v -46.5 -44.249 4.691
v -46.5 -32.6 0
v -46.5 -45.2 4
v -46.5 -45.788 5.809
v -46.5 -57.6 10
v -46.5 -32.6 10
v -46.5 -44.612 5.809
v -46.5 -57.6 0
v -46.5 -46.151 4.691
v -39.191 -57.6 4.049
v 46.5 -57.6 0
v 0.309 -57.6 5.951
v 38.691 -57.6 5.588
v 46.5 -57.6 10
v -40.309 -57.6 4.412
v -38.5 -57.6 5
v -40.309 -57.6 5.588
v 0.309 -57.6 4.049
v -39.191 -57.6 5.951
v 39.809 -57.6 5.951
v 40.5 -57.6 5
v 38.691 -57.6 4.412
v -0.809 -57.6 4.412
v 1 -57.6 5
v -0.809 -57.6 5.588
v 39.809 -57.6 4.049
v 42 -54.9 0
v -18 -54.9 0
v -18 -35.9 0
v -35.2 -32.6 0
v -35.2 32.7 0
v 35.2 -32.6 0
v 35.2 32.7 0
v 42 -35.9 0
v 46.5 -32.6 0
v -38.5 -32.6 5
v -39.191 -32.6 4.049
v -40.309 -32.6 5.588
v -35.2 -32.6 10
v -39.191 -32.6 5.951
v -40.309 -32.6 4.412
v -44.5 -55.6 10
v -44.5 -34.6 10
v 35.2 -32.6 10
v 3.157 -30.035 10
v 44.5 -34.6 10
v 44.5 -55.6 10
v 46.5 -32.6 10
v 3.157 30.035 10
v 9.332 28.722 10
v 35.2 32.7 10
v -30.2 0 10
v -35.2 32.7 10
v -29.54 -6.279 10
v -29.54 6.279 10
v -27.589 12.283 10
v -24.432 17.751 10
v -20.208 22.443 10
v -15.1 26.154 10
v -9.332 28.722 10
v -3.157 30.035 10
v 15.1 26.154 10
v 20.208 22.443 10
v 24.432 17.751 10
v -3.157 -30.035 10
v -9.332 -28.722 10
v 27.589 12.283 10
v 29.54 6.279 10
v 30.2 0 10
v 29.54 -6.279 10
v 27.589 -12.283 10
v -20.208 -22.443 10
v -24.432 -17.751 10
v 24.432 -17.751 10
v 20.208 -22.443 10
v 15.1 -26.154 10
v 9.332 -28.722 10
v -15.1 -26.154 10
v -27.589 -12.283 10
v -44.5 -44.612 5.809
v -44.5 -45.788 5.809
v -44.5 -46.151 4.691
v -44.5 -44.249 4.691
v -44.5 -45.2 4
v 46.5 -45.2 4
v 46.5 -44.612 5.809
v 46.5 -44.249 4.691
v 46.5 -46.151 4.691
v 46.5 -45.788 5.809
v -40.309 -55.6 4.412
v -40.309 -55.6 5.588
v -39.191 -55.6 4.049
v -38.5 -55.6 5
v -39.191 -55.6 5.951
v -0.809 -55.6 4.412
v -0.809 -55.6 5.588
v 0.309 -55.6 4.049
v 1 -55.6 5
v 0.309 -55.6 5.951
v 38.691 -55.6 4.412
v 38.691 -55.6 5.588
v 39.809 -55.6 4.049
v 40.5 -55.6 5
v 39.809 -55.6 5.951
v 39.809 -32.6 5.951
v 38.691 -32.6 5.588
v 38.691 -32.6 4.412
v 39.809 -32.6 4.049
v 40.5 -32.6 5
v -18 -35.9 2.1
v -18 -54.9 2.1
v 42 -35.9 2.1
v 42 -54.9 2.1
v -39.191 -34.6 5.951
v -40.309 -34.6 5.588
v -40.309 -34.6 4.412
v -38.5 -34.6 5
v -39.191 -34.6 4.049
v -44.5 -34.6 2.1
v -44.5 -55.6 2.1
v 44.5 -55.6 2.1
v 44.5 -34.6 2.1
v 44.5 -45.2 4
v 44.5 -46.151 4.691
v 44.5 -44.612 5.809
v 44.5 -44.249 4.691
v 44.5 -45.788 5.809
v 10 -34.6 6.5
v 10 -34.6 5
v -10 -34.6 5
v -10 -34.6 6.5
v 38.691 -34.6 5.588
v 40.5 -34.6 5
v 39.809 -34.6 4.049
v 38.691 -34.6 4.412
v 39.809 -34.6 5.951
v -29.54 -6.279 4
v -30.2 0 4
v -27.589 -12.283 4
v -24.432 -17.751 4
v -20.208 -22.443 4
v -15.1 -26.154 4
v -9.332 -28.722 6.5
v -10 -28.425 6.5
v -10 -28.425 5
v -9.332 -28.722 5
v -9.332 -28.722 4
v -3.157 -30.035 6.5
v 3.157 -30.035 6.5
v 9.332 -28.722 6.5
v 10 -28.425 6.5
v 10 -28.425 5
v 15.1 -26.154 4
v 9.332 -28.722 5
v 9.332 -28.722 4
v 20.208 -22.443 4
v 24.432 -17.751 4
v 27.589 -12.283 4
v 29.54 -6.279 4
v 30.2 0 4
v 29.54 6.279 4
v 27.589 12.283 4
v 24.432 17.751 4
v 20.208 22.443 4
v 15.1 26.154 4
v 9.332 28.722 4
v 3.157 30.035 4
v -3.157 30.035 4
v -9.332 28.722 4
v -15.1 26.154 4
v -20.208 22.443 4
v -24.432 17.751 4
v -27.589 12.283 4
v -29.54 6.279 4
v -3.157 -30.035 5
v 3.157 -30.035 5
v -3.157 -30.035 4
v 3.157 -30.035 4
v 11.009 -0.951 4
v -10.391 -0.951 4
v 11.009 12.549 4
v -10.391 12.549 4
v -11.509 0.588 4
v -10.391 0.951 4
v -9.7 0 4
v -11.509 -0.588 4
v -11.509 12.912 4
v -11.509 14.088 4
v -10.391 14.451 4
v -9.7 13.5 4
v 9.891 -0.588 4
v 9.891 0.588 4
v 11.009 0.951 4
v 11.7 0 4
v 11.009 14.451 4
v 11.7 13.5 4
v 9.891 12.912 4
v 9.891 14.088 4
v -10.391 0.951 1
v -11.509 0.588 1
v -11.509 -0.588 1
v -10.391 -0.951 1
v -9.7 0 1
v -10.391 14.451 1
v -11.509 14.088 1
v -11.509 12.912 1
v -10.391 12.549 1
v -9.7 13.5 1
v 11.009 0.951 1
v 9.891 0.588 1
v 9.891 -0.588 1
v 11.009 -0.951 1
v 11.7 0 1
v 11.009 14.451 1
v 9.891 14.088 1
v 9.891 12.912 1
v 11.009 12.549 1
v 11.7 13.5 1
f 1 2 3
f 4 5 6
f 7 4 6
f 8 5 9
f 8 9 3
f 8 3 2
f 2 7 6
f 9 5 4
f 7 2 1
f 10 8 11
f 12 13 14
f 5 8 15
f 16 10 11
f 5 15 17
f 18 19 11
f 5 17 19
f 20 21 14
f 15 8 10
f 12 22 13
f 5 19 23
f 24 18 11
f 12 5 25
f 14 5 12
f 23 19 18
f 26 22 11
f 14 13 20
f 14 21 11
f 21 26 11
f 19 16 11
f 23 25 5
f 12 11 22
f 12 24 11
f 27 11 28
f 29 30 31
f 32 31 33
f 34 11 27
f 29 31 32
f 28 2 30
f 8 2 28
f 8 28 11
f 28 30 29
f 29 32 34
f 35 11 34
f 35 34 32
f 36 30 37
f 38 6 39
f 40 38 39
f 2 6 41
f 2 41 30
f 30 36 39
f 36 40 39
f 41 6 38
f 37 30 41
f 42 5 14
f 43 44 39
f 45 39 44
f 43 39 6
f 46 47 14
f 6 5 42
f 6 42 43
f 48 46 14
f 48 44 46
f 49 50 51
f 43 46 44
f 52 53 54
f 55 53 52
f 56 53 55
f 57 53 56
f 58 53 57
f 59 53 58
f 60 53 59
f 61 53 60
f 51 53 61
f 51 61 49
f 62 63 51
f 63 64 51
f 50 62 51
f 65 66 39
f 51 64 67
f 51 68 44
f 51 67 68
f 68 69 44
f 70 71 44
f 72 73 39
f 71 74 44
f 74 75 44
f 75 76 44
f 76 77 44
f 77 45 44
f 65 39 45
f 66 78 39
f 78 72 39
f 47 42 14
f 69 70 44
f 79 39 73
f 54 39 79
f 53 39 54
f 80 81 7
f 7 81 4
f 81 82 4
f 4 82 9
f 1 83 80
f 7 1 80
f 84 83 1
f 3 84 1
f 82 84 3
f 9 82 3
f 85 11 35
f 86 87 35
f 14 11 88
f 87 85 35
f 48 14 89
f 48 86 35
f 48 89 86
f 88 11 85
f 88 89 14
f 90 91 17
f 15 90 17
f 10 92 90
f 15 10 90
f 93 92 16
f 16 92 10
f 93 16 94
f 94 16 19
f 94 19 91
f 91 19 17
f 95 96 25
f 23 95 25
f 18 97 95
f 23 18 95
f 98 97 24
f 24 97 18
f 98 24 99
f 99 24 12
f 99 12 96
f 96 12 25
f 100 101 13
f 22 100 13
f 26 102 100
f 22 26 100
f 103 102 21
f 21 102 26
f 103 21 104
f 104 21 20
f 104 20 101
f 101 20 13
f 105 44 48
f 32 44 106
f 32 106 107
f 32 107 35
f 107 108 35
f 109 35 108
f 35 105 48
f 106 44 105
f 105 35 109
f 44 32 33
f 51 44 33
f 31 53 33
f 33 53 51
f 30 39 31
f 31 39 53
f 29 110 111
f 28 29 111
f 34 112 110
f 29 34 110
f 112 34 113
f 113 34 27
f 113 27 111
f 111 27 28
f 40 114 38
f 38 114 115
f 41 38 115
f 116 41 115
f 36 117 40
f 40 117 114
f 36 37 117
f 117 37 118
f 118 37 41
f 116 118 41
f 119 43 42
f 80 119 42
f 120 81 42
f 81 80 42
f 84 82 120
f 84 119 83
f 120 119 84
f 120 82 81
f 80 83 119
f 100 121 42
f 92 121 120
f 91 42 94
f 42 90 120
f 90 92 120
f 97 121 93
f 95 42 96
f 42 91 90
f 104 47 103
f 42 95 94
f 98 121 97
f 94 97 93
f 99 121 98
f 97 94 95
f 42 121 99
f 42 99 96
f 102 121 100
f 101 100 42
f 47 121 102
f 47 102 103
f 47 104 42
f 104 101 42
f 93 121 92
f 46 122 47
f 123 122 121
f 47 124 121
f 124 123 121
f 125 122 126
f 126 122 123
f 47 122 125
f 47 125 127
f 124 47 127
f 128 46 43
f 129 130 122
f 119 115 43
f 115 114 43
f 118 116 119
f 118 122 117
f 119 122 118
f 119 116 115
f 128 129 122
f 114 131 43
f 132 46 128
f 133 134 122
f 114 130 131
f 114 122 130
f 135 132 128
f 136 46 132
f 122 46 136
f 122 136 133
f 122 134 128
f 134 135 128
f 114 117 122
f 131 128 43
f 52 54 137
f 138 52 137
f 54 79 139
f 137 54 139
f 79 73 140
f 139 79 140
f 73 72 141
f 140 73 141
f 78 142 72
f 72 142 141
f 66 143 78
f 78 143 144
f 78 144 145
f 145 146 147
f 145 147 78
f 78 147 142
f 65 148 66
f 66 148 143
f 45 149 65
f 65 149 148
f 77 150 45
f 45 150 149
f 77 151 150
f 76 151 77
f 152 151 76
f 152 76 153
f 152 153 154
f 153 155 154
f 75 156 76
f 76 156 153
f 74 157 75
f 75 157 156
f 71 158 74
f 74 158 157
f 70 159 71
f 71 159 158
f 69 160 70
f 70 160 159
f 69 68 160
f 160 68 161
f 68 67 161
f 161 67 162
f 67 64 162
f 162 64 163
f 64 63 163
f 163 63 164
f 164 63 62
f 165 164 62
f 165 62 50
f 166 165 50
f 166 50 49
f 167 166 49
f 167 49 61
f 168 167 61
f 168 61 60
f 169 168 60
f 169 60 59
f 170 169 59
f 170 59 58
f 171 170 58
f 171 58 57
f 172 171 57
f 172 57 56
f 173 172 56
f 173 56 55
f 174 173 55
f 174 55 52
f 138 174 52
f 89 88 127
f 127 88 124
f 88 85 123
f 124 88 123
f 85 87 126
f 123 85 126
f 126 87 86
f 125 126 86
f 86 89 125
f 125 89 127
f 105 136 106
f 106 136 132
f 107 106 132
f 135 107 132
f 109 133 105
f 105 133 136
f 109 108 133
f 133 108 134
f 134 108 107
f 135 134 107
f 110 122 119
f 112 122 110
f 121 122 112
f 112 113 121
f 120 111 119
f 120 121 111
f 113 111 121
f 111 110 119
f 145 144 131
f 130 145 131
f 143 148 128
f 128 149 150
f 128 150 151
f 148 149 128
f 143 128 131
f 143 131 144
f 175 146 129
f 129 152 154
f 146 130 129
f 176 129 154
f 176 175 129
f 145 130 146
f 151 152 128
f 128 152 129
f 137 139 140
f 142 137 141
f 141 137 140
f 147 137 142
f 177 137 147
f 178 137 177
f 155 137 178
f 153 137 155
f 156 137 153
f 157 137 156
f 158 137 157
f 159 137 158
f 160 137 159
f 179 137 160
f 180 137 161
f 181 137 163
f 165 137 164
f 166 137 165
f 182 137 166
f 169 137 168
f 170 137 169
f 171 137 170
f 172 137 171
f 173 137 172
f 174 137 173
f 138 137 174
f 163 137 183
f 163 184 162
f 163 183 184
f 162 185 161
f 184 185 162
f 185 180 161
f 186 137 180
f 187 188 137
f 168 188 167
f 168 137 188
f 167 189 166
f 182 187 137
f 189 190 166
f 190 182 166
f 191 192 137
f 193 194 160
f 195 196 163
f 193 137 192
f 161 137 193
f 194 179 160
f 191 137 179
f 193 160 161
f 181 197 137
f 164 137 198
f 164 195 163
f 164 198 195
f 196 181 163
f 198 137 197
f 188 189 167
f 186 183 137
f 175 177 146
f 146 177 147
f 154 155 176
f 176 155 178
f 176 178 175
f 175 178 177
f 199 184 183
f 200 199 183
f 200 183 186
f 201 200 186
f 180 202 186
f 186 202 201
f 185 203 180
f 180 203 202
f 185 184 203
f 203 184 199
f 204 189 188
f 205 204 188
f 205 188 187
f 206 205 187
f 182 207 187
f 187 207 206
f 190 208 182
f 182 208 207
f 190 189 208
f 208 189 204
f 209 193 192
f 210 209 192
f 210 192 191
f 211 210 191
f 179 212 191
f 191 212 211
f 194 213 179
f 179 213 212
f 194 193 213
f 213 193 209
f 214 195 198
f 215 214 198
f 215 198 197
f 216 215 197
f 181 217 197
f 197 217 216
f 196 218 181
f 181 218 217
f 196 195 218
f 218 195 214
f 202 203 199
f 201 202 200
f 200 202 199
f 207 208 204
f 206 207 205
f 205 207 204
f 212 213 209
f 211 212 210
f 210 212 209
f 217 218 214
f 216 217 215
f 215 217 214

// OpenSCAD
// file: Camara.scad
camW = 25.2;
camH = 25.4;
camD = 1;

camTW = 2;

lenW = 8.2;
lenH = 8.2;
lenD = 5.5;


//createCamara();

module createCamara(){

difference(){

//Tableta
cube([camW,camH,camD]);


createCamTornillos();


}

//lente
translate([(camW/2)-lenW/2,10-lenW/2,camD-0.1])
cube([lenW+0.1,lenH,lenD]);

//Cable
cableD = 3;
translate([0,0,-cableD+0.1])
cube([camW,6,cableD]);



}


module createCamTornillos(){

//Tornillos
translate([1.9,10,-1])
cylinder(r=camTW/2,5);
translate([1.9+21.4,10,-1])
cylinder(r=camTW/2,5);

translate([1.9,10+13.5,-1])
cylinder(r=camTW/2,5);
translate([1.9+21.4,10+13.5,-1])
cylinder(r=camTW/2,5);

}
// main file
include <Camara.scad>

//lupa
lupaW = 54.4+6;

//bc=Base de cámara
bcW = lupaW+10;
bcH = lupaW+5;
bcD = 10;

//rb=Raspberry atrás
rbW=87 + 6;
rbH=25;
rbD=bcD;
rbPared = 2;

rbConnW = 60;
rbConnH = 19;

//brt=base rosca tubo
brtPared = 4;

cableW = 20;


createBaseTrasera();




module createBaseTrasera(){


difference(){
createBaseAtras();

//Rosca de tubo
translate([0,0,brtPared])
cylinder(r=lupaW/2,20);

//Area de cámara
//translate([-camW/2,-10,brtPared-0.2])
//createCamara();


//Cajara rasp atrás
translate([-rbW/2+rbPared,(-bcH/2)-rbH+0.1+rbPared,rbPared+0.1])
cube([rbW-(2*rbPared),rbH-(2*rbPared),rbD-rbPared]);

//Tornillos para camara
translate([-12.6,-10,5-3])
createCamTornillos();


//Quita ranura cable
translate([-cableW/2,-bcW/2-(cableW/2),5])
cube([cableW,cableW,1.5]);

//Tornillos de la caja
translate([-rbW/2-5,(-bcW/2)-rbH/2.5,5])
rotate([0,90,0])
cylinder(r=1,10);

translate([rbW/2-5,(-bcW/2)-rbH/2.5,5])
rotate([0,90,0])
cylinder(r=1,10);	

translate([rbW/2-7,(-bcW/2)+5,5])
rotate([90,0,0])
cylinder(r=1,30);

translate([-rbW/2+7,(-bcW/2)+5,5])
rotate([90,0,0])
cylinder(r=1,30);

translate([0,(-bcW/2)-(rbH/2),5])
rotate([90,0,0])
cylinder(r=1,15);

translate([-18,-bcW+(rbH/2)+rbPared+1,-1])
cube([rbConnW,rbConnH,10]);

}

}



	



module createBaseAtras(){

//Caja rasp atrás
translate([-rbW/2,(-bcH/2)-rbH+0.1,0])
cube([rbW,rbH,rbD]);

//Portacamara
translate([-bcW/2,-bcH/2,0])
cube([bcW,bcH,bcD]);

}
